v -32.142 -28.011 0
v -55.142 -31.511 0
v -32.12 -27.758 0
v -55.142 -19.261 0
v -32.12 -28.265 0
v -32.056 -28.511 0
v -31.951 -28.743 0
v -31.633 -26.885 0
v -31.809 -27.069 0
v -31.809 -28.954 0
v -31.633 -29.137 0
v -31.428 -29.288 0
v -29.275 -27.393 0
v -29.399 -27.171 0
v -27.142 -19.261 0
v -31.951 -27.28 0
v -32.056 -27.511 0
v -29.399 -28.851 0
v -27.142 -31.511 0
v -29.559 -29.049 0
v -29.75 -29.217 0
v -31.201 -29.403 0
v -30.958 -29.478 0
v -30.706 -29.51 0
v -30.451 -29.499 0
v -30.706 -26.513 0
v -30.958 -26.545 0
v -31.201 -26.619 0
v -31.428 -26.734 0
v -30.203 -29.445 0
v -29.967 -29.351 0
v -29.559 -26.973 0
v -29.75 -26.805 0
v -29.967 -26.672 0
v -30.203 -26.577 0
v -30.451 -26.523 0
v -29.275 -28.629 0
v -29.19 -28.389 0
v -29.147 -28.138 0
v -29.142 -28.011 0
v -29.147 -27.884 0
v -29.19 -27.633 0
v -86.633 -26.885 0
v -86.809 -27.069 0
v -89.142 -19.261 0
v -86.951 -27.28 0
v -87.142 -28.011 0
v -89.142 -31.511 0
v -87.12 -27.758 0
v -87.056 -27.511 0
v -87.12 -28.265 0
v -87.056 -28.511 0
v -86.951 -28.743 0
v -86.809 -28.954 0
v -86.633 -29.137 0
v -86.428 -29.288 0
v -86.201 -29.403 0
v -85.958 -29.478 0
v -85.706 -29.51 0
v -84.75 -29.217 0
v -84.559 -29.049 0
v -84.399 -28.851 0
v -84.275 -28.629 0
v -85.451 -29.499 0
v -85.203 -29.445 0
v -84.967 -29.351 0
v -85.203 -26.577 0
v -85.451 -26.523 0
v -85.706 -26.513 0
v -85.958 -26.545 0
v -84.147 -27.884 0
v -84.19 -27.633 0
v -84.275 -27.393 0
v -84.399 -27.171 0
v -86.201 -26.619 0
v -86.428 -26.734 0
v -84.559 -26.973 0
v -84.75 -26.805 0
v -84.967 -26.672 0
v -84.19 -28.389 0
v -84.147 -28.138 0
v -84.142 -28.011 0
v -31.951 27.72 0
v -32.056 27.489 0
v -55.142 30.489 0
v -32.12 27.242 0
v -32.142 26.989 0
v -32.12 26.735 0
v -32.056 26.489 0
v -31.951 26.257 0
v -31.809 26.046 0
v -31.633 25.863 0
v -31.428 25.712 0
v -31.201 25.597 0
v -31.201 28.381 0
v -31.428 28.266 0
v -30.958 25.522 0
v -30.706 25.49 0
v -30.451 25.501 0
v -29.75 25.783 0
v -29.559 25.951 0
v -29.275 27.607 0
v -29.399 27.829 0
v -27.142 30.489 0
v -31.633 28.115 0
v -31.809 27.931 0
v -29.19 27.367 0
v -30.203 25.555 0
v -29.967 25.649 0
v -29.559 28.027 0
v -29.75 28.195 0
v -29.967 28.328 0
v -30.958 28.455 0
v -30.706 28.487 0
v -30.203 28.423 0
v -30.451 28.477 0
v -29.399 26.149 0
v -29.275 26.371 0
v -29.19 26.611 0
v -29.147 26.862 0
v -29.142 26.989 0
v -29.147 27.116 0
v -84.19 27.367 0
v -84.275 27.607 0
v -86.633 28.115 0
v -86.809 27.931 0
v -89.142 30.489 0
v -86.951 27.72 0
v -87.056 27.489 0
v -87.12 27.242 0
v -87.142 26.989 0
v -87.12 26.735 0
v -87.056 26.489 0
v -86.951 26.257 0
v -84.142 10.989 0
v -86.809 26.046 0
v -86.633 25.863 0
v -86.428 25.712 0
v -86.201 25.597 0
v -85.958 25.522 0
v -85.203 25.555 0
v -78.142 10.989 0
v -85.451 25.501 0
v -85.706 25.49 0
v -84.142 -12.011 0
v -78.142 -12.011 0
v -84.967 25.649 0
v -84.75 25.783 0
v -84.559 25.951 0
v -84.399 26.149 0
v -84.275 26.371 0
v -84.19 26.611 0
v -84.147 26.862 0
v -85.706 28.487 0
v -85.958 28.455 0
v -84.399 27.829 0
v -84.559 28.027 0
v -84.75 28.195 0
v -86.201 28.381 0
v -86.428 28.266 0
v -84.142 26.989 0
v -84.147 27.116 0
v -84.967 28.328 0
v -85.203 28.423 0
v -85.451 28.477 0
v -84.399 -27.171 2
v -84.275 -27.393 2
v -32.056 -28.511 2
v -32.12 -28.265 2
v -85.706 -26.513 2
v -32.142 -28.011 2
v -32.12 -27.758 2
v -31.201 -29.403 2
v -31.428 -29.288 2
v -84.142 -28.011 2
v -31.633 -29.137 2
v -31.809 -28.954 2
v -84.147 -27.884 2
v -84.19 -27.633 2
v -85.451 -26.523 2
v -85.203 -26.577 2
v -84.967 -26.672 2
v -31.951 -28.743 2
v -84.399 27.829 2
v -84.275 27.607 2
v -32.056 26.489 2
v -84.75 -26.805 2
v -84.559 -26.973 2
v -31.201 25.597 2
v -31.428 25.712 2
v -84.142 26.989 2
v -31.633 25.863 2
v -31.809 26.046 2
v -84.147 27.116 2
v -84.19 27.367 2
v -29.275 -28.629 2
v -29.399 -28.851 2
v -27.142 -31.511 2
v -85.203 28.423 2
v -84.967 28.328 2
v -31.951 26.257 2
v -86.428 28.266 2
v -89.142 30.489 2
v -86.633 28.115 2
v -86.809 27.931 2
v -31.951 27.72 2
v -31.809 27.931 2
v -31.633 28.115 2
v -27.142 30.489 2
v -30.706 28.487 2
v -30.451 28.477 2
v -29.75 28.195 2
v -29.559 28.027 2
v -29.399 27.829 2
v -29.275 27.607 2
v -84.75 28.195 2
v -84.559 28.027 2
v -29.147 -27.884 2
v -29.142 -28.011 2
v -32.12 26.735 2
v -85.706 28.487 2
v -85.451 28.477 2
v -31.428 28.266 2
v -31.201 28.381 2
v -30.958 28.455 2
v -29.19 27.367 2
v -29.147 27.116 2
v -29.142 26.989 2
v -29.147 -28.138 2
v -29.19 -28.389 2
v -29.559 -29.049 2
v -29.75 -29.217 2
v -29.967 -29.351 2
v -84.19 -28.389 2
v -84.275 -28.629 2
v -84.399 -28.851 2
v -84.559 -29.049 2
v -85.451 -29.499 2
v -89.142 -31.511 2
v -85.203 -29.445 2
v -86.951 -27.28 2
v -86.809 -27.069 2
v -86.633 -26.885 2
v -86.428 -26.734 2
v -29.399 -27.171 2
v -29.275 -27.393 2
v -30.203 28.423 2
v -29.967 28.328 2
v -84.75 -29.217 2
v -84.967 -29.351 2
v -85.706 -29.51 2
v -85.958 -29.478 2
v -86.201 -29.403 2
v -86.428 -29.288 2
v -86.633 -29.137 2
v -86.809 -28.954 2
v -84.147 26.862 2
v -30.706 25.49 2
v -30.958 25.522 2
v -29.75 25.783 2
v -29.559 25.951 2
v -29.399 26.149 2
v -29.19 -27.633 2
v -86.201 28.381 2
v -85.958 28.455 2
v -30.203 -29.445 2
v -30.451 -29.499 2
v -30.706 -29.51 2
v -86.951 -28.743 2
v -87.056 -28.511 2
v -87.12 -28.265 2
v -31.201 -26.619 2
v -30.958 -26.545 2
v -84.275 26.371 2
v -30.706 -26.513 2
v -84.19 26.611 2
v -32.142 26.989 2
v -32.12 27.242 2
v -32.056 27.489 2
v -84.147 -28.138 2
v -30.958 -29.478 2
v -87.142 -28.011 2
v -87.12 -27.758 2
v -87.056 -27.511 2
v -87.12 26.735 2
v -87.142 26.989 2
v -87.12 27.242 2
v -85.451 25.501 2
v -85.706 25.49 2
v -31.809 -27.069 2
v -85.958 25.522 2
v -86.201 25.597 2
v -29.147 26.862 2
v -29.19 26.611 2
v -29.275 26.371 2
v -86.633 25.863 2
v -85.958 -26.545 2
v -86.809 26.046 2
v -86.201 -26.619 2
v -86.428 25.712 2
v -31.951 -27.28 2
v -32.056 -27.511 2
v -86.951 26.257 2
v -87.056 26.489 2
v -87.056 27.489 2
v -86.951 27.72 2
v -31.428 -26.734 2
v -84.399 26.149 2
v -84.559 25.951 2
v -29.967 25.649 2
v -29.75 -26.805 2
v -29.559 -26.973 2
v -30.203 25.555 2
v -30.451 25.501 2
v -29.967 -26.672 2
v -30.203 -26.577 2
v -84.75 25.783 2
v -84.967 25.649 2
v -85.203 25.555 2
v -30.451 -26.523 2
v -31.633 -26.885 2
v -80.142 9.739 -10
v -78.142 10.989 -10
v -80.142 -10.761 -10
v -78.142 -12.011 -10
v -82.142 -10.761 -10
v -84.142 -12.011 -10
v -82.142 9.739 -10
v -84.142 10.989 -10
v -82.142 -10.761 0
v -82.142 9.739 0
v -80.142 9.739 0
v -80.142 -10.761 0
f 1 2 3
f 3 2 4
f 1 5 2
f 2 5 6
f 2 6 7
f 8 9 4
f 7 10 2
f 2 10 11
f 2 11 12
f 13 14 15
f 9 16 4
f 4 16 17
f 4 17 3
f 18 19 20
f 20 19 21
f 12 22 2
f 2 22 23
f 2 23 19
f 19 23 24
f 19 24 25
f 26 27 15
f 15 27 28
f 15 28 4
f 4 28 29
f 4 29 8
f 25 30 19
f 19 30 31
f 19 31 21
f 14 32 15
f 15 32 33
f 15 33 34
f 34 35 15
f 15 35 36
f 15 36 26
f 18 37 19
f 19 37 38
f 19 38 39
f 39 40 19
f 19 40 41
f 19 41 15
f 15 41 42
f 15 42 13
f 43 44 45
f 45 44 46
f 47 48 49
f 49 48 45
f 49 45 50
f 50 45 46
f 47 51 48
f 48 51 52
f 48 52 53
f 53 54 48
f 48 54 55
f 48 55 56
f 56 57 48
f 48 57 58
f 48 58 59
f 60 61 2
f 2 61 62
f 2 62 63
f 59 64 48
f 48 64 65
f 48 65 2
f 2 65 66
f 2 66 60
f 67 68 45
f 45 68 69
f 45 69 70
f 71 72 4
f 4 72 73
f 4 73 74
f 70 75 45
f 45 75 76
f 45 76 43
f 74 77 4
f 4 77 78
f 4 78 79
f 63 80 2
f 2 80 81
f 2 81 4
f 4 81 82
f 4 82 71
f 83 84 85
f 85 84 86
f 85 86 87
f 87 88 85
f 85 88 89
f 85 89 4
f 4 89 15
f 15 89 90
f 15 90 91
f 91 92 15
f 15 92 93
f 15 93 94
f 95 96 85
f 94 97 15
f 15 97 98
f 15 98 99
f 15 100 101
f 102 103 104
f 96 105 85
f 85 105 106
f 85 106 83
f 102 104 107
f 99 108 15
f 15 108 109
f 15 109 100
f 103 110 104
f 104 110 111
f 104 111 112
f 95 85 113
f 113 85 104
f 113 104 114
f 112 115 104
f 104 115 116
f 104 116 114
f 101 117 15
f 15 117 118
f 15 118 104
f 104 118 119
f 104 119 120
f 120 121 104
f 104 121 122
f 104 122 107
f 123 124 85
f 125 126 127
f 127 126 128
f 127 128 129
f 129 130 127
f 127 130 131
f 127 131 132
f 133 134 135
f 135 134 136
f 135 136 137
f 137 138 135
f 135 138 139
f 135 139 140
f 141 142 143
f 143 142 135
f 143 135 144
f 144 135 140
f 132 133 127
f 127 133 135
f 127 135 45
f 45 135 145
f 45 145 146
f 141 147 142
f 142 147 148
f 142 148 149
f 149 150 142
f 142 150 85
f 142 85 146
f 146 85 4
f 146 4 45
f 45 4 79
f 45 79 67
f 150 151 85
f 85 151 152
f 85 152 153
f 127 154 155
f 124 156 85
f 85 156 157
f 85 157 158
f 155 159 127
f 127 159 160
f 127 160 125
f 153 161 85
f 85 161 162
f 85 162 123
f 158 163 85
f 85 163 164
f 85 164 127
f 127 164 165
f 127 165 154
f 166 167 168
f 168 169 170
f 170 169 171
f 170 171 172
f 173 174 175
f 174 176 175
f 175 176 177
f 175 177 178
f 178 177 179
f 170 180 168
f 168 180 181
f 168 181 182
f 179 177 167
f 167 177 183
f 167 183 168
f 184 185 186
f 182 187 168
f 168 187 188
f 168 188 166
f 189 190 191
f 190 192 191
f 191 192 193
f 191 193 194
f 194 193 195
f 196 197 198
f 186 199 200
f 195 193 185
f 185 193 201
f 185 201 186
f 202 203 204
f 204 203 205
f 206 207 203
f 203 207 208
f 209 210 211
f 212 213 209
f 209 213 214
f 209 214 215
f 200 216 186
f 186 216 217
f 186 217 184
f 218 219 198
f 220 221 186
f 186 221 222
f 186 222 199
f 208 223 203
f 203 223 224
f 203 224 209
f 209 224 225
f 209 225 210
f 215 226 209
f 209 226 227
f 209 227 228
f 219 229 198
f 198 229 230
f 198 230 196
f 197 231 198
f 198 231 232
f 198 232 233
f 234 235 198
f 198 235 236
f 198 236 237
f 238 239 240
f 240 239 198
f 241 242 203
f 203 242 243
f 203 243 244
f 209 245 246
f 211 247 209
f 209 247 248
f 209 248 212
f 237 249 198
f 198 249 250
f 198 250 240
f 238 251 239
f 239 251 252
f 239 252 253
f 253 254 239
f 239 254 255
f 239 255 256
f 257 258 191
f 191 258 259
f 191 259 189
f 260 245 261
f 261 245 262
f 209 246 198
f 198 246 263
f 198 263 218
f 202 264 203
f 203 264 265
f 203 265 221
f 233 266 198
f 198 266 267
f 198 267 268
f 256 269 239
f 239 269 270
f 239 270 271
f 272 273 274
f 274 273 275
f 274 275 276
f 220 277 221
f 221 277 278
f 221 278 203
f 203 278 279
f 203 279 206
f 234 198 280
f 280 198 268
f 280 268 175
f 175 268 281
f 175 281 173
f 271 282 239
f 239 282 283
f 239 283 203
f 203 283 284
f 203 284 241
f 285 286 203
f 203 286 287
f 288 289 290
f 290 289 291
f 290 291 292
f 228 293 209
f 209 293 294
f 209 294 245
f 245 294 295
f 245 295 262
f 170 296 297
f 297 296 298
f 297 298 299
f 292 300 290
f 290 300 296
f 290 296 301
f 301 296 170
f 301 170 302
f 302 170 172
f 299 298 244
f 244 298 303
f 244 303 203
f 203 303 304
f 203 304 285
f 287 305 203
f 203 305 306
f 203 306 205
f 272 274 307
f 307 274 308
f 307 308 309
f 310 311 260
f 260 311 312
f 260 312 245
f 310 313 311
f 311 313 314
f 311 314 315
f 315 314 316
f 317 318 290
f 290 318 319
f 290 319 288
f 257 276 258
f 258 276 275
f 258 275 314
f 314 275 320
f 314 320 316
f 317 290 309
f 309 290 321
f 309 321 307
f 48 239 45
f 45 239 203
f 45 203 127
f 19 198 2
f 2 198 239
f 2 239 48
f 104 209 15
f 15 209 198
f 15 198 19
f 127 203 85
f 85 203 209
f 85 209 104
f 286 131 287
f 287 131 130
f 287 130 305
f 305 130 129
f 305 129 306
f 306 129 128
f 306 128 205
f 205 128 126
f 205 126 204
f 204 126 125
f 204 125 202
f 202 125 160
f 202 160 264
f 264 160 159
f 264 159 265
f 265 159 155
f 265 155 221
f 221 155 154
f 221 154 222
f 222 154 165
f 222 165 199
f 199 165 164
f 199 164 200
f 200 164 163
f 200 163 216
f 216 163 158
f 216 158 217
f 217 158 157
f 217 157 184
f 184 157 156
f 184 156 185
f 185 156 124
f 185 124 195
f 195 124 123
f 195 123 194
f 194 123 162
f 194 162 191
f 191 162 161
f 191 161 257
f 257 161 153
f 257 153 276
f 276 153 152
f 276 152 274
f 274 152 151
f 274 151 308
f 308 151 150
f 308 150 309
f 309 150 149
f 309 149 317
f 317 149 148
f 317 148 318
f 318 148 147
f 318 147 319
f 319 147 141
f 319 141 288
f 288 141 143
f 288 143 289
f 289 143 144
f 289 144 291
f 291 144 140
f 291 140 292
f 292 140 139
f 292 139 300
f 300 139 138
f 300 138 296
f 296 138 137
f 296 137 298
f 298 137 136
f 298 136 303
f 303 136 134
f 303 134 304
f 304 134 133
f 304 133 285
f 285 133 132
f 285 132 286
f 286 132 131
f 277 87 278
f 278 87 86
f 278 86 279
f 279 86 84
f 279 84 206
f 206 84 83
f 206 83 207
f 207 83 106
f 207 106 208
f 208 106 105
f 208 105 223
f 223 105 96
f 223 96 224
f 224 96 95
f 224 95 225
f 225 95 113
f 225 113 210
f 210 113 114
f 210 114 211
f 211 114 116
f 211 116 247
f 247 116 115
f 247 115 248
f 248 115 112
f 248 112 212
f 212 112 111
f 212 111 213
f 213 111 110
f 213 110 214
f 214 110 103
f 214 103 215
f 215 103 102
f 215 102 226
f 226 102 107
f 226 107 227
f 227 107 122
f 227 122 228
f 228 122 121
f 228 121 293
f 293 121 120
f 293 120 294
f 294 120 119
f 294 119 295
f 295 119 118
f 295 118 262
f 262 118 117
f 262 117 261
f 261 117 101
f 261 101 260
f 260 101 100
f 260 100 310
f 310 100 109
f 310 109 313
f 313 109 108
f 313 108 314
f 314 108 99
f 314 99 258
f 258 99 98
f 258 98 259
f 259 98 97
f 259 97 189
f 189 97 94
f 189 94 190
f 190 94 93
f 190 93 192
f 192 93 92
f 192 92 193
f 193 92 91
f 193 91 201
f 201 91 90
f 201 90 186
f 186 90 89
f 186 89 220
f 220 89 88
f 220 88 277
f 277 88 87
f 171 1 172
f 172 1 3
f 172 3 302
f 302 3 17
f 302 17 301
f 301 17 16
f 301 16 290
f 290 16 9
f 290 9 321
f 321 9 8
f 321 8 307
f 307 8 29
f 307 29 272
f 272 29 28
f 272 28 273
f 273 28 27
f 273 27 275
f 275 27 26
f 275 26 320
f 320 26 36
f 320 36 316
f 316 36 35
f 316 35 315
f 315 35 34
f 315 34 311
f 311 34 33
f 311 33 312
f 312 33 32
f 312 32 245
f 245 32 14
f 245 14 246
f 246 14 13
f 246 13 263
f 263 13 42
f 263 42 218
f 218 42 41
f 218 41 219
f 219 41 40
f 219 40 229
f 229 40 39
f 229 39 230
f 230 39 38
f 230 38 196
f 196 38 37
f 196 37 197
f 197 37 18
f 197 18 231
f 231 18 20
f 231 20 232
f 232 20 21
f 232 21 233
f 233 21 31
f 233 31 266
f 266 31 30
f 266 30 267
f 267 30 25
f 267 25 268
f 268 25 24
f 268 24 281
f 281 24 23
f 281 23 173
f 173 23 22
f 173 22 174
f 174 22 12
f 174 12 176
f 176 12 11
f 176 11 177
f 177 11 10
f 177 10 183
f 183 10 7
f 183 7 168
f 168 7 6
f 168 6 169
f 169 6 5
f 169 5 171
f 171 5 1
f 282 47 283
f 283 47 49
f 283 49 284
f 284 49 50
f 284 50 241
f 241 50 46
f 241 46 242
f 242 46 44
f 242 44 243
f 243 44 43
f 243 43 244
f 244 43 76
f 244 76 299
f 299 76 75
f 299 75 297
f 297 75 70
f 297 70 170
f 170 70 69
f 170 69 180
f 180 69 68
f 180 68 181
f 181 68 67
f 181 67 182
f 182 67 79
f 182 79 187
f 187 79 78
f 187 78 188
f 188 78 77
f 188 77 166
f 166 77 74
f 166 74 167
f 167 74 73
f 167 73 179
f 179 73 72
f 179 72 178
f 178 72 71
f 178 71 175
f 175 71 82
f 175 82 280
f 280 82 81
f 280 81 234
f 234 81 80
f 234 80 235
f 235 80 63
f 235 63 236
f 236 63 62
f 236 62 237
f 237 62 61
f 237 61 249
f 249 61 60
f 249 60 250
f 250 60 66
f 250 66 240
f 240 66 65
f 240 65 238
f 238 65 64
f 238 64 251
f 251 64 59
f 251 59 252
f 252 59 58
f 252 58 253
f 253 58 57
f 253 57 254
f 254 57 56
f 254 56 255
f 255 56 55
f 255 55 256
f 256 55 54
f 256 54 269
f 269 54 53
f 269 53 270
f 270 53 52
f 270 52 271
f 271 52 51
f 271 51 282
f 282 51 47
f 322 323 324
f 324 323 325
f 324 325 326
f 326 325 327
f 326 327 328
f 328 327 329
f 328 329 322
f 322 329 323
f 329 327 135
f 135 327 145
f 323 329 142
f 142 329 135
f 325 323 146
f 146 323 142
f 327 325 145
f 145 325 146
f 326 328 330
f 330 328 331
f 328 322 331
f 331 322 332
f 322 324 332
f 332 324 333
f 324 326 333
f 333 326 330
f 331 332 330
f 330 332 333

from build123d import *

# Parameters (mm, degrees)
CROQUIS1_W              = 62
CROQUIS1_H              = 62
CROQUIS1_R              = 1.5
SALIENTE_EXTRUIR1_DEPTH = 2
CROQUIS2_W              = 6
CROQUIS2_H              = 23
CROQUIS2_W_2            = 2
CROQUIS2_H_2            = 20.5
SALIENTE_EXTRUIR2_DEPTH = 10


with BuildPart() as part:
    # Croquis1 → Saliente-Extruir1 (new body)
    with BuildSketch(Plane.XY):
        with Locations((-58.141884519, -0.511173184)):
            Rectangle(CROQUIS1_W, CROQUIS1_H)
        with Locations((-85.641884519, 26.988826816)):
            Circle(CROQUIS1_R, mode=Mode.SUBTRACT)
        with Locations((-30.641884519, 26.988826816)):
            Circle(CROQUIS1_R, mode=Mode.SUBTRACT)
        with Locations((-30.641884519, -28.011173184)):
            Circle(CROQUIS1_R, mode=Mode.SUBTRACT)
        with Locations((-85.641884519, -28.011173184)):
            Circle(CROQUIS1_R, mode=Mode.SUBTRACT)
    extrude(amount=SALIENTE_EXTRUIR1_DEPTH)

    # Croquis2 → Saliente-Extruir2 (add)
    with BuildSketch(Plane(origin=(0, 0, 0), x_dir=(-1, 0, 0), z_dir=(0, 0, -1))):
        with Locations((81.141884519, -0.511173184)):
            Rectangle(CROQUIS2_W, CROQUIS2_H)
        with Locations((81.141884519, -0.511173184)):
            Rectangle(CROQUIS2_W_2, CROQUIS2_H_2, mode=Mode.SUBTRACT)
    extrude(amount=SALIENTE_EXTRUIR2_DEPTH)


solid = part.part
